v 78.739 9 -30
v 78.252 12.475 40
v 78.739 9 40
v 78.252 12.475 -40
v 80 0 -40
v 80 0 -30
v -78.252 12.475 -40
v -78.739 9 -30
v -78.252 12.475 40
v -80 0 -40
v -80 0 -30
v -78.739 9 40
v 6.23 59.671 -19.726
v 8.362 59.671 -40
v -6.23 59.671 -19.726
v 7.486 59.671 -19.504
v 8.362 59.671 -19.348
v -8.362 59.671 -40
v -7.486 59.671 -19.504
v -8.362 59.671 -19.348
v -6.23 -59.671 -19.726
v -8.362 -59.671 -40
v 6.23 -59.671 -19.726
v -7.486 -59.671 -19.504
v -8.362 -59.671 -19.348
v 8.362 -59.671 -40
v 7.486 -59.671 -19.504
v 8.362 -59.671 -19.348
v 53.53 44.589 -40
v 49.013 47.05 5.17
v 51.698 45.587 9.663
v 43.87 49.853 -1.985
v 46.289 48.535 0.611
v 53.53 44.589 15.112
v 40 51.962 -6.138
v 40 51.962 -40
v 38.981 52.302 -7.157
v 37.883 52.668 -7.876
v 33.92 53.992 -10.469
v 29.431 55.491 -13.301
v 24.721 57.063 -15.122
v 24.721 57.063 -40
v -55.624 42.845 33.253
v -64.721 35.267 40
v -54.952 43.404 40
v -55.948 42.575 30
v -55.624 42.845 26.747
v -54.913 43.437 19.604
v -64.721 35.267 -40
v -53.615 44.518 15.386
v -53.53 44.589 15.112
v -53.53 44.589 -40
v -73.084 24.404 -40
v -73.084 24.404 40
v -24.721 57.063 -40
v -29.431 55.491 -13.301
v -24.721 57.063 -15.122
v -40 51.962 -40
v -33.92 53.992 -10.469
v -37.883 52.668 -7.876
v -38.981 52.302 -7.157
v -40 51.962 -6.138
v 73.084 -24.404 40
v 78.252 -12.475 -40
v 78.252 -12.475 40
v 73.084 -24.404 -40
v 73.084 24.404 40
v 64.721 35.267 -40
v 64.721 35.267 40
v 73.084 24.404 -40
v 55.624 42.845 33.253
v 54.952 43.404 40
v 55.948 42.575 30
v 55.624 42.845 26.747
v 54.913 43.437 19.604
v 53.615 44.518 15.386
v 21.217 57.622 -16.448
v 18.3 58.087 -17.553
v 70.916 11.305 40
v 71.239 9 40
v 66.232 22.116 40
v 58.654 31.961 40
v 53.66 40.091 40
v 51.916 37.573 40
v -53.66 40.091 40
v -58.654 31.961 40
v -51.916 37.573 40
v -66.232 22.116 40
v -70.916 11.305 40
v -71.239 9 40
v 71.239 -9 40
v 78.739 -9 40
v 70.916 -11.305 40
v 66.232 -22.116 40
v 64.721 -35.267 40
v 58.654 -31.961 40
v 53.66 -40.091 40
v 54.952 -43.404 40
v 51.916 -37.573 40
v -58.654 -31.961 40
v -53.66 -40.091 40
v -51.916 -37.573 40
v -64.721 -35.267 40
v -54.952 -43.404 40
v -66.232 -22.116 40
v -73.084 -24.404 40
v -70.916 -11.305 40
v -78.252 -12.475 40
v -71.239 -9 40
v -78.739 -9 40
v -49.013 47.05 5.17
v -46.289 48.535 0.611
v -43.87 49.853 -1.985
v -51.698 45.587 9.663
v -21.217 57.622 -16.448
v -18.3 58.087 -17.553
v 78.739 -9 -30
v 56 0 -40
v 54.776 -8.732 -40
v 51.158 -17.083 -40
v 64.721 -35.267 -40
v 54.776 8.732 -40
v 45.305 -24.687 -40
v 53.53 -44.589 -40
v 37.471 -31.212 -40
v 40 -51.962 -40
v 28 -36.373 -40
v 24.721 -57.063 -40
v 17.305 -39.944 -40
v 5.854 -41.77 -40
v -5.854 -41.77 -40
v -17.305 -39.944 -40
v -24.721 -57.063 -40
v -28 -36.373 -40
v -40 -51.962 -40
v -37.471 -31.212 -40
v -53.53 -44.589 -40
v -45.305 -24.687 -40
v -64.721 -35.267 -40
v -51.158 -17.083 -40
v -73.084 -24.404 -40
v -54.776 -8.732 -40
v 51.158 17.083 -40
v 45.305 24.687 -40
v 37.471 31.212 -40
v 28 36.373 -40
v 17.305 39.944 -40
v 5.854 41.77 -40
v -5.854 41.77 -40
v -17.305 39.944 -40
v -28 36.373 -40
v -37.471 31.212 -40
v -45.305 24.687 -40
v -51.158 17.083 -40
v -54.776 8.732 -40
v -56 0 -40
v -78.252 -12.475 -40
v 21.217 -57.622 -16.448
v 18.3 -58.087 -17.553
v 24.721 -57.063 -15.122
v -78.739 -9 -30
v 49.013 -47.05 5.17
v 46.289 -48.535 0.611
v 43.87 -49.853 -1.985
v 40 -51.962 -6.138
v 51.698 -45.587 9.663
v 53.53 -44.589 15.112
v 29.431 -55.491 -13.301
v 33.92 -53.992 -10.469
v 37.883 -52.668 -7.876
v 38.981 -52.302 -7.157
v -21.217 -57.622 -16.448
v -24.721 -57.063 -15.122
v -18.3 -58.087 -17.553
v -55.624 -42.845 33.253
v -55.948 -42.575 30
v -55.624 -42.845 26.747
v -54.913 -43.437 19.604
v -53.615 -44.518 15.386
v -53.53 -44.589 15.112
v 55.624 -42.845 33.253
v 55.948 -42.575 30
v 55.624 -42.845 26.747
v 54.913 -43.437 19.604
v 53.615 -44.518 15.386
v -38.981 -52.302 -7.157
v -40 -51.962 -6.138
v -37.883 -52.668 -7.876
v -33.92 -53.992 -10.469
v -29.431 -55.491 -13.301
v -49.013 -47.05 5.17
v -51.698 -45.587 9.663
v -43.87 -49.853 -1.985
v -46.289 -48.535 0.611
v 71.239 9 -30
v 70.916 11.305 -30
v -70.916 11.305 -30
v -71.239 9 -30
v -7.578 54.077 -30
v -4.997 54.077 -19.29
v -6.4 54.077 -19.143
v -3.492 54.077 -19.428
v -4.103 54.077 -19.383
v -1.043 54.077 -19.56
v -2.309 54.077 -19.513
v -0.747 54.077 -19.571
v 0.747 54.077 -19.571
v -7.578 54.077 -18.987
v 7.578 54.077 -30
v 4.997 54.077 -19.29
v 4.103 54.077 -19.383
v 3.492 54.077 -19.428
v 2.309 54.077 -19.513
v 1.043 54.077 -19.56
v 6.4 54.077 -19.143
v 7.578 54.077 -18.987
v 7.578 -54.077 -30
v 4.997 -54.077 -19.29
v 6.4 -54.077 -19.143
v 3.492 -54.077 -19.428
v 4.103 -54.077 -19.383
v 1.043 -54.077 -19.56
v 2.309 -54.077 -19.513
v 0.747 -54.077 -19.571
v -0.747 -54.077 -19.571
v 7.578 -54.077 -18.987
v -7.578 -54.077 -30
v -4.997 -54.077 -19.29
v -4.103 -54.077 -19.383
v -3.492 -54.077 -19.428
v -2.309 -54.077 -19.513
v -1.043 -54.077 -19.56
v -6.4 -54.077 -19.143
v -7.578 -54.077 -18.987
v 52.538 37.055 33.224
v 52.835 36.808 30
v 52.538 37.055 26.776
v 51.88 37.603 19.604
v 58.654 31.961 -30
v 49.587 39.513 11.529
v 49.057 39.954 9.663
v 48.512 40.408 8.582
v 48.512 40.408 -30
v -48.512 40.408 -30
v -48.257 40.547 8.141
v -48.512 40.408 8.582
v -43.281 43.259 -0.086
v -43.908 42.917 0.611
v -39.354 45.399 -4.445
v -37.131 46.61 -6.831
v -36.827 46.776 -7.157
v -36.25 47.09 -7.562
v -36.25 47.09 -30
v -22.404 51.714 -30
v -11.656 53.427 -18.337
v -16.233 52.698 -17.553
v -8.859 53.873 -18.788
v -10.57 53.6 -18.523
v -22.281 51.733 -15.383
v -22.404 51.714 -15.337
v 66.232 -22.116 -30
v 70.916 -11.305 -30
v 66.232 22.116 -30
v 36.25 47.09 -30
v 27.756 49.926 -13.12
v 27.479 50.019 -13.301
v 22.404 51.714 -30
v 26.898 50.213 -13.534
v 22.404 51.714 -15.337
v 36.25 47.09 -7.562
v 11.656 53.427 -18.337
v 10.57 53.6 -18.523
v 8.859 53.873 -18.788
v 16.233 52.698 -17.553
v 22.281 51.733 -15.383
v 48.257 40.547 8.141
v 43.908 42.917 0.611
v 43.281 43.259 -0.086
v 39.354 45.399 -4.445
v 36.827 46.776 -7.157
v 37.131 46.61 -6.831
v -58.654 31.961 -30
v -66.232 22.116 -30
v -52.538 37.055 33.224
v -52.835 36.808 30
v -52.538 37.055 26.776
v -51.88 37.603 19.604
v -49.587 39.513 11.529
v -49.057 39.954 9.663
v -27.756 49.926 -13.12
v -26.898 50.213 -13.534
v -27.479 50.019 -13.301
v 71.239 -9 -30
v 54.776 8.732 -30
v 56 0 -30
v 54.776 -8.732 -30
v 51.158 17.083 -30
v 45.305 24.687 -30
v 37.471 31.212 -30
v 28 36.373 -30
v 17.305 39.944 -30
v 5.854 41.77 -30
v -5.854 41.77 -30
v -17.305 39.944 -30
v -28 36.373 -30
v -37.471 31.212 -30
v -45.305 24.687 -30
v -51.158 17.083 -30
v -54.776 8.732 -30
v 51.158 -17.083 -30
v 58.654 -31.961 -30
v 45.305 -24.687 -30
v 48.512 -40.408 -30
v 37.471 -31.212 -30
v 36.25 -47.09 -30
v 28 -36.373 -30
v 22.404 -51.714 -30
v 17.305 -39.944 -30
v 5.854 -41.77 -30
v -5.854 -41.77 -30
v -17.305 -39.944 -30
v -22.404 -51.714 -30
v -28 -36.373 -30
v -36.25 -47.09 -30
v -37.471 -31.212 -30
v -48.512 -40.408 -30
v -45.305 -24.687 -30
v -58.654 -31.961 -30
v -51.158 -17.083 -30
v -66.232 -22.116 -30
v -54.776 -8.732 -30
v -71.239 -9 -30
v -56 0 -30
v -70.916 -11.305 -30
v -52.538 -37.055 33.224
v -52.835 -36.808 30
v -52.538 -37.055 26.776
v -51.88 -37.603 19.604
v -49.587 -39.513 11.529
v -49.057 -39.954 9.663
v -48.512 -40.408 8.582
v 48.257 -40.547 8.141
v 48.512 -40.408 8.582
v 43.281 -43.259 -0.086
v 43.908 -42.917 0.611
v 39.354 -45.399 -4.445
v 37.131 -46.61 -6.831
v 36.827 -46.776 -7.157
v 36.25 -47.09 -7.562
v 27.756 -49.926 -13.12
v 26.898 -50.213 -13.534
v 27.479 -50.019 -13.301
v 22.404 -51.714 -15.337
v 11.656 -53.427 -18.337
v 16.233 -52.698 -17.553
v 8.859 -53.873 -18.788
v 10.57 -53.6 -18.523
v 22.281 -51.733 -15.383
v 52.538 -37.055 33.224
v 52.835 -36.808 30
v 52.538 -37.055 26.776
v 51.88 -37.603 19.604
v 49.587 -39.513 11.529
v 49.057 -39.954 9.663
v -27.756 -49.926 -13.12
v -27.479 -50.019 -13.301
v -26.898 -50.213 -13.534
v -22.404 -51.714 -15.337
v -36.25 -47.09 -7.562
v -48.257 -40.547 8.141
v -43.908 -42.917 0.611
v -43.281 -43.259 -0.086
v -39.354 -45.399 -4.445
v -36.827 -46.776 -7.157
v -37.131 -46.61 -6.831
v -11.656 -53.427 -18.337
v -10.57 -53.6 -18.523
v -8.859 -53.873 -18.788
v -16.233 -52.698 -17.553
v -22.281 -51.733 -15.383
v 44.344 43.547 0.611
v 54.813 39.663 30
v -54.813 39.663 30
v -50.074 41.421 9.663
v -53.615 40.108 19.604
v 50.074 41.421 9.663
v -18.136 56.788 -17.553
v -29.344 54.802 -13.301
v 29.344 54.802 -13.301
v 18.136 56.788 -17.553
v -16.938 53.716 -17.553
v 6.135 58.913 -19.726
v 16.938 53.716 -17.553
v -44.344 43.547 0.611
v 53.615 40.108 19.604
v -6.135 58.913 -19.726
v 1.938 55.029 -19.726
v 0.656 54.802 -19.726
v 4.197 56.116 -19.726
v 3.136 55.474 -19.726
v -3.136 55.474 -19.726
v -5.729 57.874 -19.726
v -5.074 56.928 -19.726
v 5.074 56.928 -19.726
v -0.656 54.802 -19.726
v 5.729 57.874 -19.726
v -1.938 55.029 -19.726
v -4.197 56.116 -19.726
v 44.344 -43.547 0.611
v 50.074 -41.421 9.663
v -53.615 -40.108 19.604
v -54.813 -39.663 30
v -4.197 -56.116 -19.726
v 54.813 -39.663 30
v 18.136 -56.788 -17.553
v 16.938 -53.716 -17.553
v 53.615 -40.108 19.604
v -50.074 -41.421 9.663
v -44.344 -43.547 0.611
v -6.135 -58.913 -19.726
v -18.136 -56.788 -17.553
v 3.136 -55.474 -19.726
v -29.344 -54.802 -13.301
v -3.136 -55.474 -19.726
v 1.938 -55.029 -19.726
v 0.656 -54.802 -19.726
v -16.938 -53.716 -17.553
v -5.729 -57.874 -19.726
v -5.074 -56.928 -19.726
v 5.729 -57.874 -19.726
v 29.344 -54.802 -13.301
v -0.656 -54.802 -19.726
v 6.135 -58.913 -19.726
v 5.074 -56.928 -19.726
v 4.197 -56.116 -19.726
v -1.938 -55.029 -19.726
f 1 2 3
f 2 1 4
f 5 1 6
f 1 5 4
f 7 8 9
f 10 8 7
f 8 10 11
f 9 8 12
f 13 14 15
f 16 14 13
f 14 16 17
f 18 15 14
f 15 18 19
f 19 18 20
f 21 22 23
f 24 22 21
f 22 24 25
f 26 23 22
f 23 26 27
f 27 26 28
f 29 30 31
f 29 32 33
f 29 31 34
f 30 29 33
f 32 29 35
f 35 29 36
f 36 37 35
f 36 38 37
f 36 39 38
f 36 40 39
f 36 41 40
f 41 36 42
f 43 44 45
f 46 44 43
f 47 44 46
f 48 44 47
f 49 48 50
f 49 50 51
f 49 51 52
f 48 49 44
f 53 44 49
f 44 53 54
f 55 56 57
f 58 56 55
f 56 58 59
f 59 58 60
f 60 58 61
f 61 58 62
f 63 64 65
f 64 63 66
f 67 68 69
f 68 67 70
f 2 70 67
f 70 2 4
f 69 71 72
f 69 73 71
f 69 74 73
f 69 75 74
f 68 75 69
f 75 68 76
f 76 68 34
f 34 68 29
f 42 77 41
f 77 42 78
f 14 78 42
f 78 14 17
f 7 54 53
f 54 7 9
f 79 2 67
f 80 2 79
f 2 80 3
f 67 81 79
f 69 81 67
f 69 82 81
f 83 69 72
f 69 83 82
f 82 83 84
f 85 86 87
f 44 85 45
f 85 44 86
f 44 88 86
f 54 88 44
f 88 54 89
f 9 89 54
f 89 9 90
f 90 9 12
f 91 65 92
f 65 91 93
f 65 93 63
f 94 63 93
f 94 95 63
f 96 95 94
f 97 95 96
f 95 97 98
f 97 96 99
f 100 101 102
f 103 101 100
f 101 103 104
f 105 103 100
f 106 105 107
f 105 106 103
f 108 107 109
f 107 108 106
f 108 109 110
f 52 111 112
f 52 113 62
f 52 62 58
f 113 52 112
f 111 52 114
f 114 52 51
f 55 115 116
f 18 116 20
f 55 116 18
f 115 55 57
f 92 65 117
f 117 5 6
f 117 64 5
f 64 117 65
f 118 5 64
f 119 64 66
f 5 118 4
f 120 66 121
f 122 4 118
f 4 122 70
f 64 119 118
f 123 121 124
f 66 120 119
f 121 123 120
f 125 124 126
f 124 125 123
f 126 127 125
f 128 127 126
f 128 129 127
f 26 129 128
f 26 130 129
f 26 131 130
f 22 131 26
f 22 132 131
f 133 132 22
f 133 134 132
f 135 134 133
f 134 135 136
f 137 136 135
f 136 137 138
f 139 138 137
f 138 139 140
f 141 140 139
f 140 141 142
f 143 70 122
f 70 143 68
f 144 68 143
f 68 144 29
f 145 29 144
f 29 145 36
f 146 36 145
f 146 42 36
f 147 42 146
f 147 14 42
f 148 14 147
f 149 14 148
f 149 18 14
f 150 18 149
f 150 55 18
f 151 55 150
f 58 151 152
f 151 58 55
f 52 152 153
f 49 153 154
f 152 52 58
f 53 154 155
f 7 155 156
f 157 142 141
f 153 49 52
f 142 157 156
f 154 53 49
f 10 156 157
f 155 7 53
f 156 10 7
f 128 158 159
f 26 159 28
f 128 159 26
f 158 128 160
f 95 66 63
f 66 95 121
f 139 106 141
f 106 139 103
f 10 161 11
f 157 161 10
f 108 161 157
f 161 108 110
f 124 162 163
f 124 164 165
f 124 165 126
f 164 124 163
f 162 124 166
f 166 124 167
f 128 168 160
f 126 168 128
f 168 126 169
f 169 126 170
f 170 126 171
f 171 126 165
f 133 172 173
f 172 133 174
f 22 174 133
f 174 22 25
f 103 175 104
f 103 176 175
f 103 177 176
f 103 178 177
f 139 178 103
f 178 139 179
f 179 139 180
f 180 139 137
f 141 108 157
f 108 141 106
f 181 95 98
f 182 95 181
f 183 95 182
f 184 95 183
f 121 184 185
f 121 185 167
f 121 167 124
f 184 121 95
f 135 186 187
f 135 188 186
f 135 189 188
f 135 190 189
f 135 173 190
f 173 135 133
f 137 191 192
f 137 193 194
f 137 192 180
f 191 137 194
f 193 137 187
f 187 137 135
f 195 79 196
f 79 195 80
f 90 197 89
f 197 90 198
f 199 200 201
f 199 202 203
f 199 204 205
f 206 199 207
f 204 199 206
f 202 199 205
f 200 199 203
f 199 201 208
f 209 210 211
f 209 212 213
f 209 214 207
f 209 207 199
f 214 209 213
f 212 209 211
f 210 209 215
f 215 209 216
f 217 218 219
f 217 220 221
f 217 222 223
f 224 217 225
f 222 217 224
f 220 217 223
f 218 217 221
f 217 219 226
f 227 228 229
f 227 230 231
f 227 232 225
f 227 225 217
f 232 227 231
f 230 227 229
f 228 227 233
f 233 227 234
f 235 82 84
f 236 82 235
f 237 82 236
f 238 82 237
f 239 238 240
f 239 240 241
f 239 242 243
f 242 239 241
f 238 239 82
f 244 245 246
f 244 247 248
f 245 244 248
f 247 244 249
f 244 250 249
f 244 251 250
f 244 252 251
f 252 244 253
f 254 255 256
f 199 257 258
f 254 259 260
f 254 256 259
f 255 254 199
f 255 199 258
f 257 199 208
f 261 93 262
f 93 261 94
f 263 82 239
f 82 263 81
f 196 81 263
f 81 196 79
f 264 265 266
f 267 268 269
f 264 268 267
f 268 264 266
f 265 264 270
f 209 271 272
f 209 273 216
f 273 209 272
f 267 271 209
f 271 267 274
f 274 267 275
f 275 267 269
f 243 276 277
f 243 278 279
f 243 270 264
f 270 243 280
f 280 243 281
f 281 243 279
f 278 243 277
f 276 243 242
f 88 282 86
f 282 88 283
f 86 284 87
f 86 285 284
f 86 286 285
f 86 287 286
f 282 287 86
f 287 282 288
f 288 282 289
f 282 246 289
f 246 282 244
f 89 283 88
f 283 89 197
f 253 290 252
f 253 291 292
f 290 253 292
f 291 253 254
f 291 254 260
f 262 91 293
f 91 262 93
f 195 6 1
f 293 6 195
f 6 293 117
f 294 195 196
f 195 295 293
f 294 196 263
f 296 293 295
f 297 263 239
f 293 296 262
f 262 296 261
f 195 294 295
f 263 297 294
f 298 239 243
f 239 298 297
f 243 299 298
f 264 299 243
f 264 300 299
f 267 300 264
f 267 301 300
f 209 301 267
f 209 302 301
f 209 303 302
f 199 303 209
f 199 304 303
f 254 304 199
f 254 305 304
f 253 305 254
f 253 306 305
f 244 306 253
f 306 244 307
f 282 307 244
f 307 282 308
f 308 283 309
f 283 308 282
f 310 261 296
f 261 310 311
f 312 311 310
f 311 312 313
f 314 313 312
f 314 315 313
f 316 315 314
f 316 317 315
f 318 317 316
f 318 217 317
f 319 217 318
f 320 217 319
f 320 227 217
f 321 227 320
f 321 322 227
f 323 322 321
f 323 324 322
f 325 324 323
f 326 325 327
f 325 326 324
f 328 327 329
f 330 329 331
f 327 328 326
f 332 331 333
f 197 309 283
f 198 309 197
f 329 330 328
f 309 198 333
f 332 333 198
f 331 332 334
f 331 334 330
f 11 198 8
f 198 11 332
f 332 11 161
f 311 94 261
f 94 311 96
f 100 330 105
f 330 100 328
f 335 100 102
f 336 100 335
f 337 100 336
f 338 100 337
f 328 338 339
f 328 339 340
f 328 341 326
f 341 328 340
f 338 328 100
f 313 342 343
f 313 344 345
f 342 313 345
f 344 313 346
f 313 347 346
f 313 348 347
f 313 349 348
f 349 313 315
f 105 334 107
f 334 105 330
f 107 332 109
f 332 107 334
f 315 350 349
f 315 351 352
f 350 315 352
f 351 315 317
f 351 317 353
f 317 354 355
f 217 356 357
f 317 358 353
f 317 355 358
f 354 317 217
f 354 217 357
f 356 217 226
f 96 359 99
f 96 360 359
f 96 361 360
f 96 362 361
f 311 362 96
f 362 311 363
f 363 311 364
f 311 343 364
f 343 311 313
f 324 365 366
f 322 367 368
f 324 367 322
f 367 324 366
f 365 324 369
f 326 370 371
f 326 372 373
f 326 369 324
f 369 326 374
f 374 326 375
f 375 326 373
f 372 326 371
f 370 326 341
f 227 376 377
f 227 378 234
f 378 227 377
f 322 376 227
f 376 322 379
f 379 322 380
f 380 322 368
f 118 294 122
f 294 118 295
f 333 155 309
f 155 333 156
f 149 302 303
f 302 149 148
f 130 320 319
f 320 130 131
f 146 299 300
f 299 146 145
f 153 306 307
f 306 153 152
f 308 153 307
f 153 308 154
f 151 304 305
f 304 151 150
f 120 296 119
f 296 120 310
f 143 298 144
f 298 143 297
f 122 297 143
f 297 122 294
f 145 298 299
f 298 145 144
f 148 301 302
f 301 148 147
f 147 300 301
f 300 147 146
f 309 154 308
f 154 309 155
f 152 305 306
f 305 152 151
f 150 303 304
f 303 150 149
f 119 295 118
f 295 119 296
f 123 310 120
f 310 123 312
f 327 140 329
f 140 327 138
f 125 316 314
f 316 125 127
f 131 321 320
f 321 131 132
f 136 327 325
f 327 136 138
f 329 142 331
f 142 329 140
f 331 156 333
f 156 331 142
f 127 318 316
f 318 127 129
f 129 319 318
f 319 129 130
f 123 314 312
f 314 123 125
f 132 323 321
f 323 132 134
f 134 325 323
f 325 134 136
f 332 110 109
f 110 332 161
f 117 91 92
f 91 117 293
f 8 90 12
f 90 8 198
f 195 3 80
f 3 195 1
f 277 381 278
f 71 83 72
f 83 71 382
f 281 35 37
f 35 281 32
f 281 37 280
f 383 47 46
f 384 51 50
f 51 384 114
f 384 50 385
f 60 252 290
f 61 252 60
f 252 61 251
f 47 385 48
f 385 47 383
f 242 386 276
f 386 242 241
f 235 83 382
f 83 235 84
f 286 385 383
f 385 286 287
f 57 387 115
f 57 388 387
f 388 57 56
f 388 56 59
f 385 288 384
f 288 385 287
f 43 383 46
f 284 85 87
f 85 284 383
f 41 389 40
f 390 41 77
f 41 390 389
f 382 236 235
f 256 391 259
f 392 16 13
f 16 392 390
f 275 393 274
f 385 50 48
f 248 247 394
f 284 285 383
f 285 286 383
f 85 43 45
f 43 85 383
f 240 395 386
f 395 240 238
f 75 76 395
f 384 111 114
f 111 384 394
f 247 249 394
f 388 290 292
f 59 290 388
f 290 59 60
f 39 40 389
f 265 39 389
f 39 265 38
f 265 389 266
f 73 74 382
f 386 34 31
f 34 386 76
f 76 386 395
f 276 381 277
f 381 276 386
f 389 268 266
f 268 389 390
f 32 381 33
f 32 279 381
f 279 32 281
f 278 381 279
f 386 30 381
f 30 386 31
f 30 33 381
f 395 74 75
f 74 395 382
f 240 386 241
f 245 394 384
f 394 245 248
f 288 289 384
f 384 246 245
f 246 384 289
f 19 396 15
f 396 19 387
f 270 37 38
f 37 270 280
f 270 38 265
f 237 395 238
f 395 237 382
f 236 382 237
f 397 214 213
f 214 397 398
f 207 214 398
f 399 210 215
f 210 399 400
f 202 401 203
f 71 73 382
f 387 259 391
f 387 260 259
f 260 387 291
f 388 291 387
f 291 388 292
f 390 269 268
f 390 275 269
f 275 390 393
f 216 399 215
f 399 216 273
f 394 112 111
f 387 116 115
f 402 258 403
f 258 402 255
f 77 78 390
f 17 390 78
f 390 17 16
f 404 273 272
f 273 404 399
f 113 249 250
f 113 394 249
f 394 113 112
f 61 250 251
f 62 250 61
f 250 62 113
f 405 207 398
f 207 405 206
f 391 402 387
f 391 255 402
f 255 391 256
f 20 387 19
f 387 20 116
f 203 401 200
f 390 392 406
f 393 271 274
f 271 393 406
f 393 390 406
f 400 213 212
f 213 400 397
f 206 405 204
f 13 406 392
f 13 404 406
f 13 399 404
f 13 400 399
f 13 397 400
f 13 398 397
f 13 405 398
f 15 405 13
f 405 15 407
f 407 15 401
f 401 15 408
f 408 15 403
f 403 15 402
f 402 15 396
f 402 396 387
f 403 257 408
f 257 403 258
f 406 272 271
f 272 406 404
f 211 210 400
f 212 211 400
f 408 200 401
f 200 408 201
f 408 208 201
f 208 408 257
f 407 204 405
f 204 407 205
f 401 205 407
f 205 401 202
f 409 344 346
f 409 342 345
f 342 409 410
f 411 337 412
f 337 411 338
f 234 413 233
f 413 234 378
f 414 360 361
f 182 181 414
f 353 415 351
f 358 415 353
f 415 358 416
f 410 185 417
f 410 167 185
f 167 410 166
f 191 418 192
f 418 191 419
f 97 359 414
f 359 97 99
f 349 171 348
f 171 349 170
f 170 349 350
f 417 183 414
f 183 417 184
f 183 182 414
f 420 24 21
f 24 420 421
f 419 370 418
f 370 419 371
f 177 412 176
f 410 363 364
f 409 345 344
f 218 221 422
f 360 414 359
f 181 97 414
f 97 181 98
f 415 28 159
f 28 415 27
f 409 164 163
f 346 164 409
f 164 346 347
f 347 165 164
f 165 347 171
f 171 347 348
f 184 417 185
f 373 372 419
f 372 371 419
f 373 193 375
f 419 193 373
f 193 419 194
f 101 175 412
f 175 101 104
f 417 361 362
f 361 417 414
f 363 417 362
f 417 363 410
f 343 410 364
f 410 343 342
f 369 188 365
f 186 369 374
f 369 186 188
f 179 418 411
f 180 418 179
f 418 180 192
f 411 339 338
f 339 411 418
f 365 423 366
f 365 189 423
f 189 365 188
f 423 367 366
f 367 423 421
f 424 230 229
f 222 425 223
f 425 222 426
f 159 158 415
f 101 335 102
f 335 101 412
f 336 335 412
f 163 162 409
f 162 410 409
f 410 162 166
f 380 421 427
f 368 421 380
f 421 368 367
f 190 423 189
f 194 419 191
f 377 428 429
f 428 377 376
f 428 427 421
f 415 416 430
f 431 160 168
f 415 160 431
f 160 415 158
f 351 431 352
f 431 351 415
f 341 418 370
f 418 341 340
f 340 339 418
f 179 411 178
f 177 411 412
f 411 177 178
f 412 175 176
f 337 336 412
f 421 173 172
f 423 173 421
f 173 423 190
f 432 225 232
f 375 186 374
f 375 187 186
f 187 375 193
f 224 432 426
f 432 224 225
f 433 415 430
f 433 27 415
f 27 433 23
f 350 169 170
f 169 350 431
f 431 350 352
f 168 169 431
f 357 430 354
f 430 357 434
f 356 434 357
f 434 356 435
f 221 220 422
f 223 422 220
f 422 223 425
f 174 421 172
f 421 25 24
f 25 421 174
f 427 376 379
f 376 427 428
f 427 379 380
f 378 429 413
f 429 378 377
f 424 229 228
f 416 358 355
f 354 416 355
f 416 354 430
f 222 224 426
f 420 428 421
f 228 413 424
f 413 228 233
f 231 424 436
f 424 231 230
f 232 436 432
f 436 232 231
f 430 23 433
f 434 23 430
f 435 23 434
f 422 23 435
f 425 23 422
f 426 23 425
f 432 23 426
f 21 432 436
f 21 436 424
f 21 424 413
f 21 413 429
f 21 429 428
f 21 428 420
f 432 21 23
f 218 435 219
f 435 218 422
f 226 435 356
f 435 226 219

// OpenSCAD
module create_rack(length_x, length_y, length_z, thickness) {
    difference() {
        scale([1, length_y/length_x, 1])
            cylinder(h=length_z, r=length_x/2, center=true);
        translate([0, 0, 10])
            scale([(length_x-thickness)/length_x, (length_x-thickness)/length_x, 1])
                scale([1, length_y/length_x, 1])
                    cylinder(h=length_z, r=length_x/2, center=true);
            scale([0.7, 0.7, 1])
                scale([1, length_y/length_x, 1])
                    cylinder(h=length_z+2, r=length_x/2, center=true);
        translate([0, 0, 10])
            cube(size=[162, 18, 80], center=true);

    scale([1.2,1,1])
    translate([0,60,30])
           sphere(r=50);
        
    scale([1.2,1,1])
    translate([0,-60,30])
           sphere(r=50);
    }
};

create_rack(
    length_x=160,
    length_y=120,
    length_z=80,
    thickness=15
);
